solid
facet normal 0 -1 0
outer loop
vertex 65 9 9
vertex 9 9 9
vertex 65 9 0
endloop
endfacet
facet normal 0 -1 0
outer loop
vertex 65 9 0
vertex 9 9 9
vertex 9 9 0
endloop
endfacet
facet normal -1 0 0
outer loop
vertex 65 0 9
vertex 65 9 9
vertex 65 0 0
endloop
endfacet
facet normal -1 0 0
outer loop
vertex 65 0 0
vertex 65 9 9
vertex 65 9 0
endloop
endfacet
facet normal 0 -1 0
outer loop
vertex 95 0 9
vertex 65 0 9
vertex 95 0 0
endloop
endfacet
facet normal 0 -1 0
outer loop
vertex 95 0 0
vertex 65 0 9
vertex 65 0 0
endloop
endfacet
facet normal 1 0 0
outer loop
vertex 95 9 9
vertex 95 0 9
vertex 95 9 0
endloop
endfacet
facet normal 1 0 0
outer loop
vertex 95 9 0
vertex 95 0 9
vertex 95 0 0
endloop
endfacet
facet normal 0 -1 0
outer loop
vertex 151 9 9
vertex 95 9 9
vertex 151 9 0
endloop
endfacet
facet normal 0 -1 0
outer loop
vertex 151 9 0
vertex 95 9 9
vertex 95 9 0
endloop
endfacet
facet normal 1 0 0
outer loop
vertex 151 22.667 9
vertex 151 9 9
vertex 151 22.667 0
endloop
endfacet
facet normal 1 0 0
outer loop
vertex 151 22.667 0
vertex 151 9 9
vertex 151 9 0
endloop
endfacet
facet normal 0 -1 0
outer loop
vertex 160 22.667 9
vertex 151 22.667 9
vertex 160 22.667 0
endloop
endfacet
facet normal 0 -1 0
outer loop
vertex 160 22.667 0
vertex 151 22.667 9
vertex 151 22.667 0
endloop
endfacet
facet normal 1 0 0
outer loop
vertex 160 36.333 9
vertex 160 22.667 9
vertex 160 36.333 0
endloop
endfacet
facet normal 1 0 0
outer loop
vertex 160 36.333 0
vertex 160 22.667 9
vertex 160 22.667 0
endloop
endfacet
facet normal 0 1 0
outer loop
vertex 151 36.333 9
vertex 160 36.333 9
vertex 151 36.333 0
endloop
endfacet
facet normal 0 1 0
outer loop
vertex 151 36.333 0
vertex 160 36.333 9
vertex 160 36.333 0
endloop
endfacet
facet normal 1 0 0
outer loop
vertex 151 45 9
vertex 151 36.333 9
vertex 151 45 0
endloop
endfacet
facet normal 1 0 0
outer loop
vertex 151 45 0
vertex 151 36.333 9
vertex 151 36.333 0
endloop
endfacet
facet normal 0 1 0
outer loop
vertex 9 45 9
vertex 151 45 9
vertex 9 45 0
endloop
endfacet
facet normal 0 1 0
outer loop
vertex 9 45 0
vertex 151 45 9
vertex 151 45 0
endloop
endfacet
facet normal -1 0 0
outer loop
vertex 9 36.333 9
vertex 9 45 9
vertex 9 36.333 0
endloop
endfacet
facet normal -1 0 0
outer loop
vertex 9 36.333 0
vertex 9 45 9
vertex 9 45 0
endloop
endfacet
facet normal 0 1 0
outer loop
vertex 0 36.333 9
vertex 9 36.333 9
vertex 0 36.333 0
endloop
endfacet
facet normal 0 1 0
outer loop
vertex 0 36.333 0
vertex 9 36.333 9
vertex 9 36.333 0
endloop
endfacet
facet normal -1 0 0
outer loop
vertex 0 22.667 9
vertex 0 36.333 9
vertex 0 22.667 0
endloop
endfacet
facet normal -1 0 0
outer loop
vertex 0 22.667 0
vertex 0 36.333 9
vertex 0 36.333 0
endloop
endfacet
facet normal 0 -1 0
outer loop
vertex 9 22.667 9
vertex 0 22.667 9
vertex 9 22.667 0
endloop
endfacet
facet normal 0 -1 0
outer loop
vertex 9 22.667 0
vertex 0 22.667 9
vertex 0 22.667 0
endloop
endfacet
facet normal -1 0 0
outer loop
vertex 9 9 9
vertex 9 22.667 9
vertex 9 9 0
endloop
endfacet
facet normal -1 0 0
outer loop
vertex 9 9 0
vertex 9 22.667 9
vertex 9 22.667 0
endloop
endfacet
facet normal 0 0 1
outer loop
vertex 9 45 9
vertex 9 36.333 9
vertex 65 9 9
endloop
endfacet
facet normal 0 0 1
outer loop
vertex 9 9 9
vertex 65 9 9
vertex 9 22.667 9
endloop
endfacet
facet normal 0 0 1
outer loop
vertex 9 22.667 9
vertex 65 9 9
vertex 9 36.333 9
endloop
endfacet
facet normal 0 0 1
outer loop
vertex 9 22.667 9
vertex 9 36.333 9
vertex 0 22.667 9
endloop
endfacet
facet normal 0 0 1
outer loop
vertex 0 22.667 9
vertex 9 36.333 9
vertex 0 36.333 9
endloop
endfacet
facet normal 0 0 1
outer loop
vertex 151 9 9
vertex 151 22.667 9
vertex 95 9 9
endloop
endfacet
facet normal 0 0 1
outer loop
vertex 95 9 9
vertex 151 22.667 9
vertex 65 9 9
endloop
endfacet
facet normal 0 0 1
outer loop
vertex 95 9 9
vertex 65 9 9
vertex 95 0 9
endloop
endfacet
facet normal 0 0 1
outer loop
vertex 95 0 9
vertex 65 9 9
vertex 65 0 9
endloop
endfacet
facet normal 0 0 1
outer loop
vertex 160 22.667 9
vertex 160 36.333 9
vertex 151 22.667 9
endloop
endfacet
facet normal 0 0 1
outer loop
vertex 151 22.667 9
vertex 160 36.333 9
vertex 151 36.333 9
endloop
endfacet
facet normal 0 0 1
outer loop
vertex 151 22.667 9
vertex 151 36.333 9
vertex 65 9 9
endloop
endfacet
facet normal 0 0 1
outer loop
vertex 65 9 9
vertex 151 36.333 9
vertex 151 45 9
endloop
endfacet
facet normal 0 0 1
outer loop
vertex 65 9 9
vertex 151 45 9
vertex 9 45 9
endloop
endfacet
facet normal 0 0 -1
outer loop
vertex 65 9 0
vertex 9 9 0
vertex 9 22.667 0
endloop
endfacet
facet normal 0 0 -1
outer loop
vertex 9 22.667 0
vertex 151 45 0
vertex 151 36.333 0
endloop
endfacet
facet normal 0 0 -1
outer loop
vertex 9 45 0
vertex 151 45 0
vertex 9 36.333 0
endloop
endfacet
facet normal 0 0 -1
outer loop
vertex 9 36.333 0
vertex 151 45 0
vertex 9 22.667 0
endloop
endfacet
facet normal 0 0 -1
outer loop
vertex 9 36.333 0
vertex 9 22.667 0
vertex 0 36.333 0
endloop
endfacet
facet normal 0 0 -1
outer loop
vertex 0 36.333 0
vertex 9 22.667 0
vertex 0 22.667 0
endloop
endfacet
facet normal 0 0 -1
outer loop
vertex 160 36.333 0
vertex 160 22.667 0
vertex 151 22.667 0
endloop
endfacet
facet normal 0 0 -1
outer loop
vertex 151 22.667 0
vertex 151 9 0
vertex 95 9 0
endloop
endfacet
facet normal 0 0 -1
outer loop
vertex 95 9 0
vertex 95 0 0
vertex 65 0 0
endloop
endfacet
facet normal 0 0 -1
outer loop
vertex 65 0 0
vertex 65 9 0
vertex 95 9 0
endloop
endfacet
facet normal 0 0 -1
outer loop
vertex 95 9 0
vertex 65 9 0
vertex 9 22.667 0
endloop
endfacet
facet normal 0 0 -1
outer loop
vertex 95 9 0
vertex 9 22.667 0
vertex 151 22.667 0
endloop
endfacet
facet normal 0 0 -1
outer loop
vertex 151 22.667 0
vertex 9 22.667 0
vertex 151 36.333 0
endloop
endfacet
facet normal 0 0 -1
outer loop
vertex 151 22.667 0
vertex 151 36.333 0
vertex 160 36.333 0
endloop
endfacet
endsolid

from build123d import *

# Parameters (mm, degrees)
SKETCH1_W           = 9
SKETCH1_H           = 13.666666666
SKETCH1_W_2         = 30
SKETCH1_H_2         = 9
BOSS_EXTRUDE1_DEPTH = 9


with BuildPart() as part:
    # Sketch1 → Boss-Extrude1 (new body)
    with BuildSketch(Plane.XY):
        Polygon((9, 9), (65, 9), (95, 9), (151, 9), (151, 22.666666667), (151, 36.333333333), (151, 45), (9, 45), (9, 36.333333333), (9, 22.666666667), align=None)
        with Locations((4.5, 29.5)):
            Rectangle(SKETCH1_W, SKETCH1_H)
        with Locations((80, 4.5)):
            Rectangle(SKETCH1_W_2, SKETCH1_H_2)
        with Locations((155.5, 29.5)):
            Rectangle(SKETCH1_W, SKETCH1_H)
    extrude(amount=BOSS_EXTRUDE1_DEPTH)


solid = part.part
